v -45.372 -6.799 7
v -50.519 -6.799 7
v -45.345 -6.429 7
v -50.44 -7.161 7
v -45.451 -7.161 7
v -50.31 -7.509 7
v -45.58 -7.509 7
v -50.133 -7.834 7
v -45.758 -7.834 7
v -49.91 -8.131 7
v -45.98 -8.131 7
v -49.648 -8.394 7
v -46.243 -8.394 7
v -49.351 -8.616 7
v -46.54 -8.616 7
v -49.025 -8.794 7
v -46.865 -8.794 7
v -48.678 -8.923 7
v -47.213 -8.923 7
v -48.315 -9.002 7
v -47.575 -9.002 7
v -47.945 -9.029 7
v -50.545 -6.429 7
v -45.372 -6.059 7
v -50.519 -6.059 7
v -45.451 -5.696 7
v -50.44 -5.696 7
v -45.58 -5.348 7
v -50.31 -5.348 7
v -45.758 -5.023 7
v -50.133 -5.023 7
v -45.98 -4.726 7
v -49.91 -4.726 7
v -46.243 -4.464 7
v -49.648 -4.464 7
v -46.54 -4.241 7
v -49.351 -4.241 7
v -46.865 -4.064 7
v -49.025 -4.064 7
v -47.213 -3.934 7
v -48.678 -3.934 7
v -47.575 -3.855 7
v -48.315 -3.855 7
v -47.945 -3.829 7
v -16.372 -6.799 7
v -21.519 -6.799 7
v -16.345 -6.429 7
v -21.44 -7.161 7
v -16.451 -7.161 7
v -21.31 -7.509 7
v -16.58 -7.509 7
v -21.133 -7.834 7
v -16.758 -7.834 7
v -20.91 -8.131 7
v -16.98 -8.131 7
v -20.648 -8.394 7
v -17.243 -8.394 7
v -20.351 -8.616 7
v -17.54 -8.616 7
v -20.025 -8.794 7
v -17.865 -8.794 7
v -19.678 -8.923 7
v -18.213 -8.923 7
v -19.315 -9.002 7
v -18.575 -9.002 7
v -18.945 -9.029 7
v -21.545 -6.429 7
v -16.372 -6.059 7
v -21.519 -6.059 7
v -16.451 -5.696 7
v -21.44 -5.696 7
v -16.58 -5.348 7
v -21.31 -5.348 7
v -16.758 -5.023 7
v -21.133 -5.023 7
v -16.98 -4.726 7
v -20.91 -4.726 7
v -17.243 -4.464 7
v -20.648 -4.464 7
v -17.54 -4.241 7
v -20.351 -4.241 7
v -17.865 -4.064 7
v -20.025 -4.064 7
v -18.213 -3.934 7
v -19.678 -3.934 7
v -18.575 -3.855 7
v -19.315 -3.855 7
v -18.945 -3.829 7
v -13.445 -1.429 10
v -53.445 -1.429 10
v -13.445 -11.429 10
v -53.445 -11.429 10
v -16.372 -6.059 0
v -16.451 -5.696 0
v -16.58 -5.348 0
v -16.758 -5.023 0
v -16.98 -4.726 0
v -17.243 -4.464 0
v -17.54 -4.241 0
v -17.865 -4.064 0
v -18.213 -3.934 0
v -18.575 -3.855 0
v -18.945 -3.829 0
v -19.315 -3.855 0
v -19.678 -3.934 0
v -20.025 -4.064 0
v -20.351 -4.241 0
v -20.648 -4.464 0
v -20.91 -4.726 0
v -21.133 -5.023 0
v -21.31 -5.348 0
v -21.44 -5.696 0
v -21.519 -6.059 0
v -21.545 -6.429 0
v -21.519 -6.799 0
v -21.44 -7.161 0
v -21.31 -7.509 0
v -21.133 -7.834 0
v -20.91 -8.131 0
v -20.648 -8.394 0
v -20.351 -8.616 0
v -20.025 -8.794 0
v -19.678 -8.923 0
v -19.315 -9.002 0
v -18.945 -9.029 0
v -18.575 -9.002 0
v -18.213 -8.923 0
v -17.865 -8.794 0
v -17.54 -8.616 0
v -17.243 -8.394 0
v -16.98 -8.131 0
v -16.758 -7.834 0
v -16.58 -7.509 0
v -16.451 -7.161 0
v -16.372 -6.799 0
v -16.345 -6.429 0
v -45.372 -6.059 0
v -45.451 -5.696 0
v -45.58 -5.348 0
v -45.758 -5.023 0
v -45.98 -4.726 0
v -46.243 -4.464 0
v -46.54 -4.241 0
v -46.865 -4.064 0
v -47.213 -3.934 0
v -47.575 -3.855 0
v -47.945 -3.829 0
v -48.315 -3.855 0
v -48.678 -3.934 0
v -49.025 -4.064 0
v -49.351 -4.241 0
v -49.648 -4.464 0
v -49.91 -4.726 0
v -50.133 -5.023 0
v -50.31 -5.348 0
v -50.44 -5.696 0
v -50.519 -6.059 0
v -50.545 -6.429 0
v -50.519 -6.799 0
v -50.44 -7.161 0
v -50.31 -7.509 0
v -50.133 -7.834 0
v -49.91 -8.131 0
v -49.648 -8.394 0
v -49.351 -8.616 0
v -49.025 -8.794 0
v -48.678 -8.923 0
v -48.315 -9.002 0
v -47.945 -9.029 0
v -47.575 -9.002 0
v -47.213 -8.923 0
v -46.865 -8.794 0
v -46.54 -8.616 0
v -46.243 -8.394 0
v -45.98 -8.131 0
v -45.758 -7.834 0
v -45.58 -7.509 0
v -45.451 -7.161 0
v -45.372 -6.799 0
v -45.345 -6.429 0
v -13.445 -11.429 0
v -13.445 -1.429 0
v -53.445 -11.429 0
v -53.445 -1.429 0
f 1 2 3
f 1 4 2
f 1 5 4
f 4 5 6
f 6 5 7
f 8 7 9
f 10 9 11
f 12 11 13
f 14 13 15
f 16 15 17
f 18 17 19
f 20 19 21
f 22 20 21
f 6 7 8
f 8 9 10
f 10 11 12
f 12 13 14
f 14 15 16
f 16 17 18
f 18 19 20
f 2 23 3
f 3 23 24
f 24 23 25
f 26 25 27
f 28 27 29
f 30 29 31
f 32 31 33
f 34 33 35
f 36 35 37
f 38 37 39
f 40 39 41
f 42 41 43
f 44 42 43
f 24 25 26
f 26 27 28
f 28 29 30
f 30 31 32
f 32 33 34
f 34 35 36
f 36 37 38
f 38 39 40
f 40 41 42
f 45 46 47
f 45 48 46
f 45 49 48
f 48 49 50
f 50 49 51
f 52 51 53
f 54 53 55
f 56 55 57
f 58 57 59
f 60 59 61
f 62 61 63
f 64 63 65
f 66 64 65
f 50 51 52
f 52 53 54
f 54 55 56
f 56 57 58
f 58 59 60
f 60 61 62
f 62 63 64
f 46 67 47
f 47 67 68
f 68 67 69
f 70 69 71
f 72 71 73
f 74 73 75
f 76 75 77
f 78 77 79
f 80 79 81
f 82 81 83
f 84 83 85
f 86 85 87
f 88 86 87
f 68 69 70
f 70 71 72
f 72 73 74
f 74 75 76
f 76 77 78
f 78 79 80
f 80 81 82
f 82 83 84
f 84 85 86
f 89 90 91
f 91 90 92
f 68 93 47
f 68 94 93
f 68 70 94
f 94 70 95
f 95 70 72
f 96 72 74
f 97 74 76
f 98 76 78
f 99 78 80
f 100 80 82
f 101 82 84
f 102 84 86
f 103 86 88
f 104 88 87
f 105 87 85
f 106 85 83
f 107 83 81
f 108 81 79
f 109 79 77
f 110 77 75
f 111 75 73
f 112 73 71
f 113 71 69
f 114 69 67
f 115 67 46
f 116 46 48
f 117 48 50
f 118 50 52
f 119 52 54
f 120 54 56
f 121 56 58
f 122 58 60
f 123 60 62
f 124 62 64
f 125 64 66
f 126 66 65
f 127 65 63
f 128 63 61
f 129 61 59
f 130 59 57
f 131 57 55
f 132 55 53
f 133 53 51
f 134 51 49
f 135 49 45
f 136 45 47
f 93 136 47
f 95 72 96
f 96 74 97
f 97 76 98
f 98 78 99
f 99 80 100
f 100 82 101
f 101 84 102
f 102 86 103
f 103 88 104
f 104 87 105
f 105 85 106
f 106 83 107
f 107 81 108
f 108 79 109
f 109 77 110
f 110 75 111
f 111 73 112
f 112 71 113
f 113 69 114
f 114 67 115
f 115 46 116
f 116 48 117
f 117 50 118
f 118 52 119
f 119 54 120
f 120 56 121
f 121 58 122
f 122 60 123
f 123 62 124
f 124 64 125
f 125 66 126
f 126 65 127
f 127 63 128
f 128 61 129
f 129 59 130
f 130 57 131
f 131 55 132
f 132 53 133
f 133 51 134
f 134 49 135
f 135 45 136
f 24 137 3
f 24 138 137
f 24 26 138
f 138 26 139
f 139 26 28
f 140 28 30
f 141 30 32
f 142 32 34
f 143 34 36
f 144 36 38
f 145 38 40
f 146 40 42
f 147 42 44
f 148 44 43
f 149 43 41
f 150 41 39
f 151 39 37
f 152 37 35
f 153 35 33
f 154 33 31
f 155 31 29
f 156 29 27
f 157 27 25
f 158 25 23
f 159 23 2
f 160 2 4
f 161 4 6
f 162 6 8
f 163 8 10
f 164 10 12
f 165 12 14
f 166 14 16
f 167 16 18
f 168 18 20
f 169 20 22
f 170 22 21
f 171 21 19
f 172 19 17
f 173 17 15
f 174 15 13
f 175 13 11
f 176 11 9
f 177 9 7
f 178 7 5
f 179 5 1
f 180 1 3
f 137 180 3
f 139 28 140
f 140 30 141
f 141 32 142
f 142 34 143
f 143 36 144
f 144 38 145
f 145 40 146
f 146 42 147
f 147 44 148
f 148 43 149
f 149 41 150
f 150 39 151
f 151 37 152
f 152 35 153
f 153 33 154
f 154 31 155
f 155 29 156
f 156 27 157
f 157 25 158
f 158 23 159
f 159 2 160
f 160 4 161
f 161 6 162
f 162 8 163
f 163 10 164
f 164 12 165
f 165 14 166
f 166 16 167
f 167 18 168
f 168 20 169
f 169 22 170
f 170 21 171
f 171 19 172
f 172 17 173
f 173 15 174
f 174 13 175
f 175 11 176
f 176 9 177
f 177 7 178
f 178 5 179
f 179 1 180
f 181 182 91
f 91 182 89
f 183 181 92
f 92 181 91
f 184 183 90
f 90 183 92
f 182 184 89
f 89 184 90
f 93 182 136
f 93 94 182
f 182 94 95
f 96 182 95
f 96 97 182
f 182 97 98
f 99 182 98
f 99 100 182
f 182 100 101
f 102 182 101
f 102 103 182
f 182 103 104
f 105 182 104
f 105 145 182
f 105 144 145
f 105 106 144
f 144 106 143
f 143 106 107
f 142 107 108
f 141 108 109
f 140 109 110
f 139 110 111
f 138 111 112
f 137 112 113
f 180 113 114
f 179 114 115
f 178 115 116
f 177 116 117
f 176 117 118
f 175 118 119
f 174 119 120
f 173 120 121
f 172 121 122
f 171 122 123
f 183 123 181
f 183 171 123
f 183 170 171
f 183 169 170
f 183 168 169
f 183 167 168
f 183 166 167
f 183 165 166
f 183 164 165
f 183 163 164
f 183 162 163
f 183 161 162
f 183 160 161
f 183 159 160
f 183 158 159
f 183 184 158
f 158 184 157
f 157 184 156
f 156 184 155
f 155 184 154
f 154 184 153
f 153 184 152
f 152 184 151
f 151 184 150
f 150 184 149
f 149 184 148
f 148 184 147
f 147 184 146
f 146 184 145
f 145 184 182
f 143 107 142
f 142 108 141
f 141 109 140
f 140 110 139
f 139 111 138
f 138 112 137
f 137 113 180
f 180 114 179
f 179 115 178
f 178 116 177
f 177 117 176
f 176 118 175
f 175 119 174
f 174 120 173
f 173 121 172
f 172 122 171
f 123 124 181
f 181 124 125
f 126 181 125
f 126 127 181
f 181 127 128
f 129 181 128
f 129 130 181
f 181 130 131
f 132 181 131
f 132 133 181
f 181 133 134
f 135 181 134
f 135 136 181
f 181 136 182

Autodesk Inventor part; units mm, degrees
ref_plane "YZ Plane" through (0, 0, 0) normal (1, 0, 0) x (0, 1, 0)
ref_plane "XZ Plane" through (0, 0, 0) normal (0, 1, 0) x (-1, 0, 0)
ref_plane "XY Plane" through (0, 0, 0) normal (0, 0, 1) x (1, 0, 0)
sketch "Sketch1" plane through (0, 0, 0) normal (0, 0, 1) x (1, 0, 0)
  line L0 (-53.4454, -1.4286) -> (-13.4454, -1.4286)
  line L1 (-13.4454, -1.4286) -> (-13.4454, -11.4286)
  line L2 (-13.4454, -11.4286) -> (-53.4454, -11.4286)
  line L3 (-53.4454, -11.4286) -> (-53.4454, -1.4286)
  circle A0 centre (-47.9454, -6.4286) radius 2.6
  circle A1 centre (-18.9454, -6.4286) radius 2.6
  point P0 (0, 0)
  dimension "d0" = 10
  dimension "d1" = 5.2
  dimension "d2" = 5.2
  dimension "d3" = 5
  dimension "d4" = 5
  dimension "d5" = 40
  dimension "d6" = 5.5
  dimension "d7" = 34.5
extrude "Extrusion1" add sketch "Sketch1" along normal blind 7
sketch "Sketch2" plane through (0, 0, 7) normal (0, 0, 1) x (1, 0, 0)
  line L0 (-53.4454, -1.4286) -> (-13.4454, -1.4286)
  line L1 (-13.4454, -1.4286) -> (-13.4454, -11.4286)
  line L2 (-13.4454, -11.4286) -> (-53.4454, -11.4286)
  line L3 (-53.4454, -11.4286) -> (-53.4454, -1.4286)
  point P0 (0, 0)
extrude "Extrusion2" add sketch "Sketch2" along normal blind 3
properties part number "Tubebase"
